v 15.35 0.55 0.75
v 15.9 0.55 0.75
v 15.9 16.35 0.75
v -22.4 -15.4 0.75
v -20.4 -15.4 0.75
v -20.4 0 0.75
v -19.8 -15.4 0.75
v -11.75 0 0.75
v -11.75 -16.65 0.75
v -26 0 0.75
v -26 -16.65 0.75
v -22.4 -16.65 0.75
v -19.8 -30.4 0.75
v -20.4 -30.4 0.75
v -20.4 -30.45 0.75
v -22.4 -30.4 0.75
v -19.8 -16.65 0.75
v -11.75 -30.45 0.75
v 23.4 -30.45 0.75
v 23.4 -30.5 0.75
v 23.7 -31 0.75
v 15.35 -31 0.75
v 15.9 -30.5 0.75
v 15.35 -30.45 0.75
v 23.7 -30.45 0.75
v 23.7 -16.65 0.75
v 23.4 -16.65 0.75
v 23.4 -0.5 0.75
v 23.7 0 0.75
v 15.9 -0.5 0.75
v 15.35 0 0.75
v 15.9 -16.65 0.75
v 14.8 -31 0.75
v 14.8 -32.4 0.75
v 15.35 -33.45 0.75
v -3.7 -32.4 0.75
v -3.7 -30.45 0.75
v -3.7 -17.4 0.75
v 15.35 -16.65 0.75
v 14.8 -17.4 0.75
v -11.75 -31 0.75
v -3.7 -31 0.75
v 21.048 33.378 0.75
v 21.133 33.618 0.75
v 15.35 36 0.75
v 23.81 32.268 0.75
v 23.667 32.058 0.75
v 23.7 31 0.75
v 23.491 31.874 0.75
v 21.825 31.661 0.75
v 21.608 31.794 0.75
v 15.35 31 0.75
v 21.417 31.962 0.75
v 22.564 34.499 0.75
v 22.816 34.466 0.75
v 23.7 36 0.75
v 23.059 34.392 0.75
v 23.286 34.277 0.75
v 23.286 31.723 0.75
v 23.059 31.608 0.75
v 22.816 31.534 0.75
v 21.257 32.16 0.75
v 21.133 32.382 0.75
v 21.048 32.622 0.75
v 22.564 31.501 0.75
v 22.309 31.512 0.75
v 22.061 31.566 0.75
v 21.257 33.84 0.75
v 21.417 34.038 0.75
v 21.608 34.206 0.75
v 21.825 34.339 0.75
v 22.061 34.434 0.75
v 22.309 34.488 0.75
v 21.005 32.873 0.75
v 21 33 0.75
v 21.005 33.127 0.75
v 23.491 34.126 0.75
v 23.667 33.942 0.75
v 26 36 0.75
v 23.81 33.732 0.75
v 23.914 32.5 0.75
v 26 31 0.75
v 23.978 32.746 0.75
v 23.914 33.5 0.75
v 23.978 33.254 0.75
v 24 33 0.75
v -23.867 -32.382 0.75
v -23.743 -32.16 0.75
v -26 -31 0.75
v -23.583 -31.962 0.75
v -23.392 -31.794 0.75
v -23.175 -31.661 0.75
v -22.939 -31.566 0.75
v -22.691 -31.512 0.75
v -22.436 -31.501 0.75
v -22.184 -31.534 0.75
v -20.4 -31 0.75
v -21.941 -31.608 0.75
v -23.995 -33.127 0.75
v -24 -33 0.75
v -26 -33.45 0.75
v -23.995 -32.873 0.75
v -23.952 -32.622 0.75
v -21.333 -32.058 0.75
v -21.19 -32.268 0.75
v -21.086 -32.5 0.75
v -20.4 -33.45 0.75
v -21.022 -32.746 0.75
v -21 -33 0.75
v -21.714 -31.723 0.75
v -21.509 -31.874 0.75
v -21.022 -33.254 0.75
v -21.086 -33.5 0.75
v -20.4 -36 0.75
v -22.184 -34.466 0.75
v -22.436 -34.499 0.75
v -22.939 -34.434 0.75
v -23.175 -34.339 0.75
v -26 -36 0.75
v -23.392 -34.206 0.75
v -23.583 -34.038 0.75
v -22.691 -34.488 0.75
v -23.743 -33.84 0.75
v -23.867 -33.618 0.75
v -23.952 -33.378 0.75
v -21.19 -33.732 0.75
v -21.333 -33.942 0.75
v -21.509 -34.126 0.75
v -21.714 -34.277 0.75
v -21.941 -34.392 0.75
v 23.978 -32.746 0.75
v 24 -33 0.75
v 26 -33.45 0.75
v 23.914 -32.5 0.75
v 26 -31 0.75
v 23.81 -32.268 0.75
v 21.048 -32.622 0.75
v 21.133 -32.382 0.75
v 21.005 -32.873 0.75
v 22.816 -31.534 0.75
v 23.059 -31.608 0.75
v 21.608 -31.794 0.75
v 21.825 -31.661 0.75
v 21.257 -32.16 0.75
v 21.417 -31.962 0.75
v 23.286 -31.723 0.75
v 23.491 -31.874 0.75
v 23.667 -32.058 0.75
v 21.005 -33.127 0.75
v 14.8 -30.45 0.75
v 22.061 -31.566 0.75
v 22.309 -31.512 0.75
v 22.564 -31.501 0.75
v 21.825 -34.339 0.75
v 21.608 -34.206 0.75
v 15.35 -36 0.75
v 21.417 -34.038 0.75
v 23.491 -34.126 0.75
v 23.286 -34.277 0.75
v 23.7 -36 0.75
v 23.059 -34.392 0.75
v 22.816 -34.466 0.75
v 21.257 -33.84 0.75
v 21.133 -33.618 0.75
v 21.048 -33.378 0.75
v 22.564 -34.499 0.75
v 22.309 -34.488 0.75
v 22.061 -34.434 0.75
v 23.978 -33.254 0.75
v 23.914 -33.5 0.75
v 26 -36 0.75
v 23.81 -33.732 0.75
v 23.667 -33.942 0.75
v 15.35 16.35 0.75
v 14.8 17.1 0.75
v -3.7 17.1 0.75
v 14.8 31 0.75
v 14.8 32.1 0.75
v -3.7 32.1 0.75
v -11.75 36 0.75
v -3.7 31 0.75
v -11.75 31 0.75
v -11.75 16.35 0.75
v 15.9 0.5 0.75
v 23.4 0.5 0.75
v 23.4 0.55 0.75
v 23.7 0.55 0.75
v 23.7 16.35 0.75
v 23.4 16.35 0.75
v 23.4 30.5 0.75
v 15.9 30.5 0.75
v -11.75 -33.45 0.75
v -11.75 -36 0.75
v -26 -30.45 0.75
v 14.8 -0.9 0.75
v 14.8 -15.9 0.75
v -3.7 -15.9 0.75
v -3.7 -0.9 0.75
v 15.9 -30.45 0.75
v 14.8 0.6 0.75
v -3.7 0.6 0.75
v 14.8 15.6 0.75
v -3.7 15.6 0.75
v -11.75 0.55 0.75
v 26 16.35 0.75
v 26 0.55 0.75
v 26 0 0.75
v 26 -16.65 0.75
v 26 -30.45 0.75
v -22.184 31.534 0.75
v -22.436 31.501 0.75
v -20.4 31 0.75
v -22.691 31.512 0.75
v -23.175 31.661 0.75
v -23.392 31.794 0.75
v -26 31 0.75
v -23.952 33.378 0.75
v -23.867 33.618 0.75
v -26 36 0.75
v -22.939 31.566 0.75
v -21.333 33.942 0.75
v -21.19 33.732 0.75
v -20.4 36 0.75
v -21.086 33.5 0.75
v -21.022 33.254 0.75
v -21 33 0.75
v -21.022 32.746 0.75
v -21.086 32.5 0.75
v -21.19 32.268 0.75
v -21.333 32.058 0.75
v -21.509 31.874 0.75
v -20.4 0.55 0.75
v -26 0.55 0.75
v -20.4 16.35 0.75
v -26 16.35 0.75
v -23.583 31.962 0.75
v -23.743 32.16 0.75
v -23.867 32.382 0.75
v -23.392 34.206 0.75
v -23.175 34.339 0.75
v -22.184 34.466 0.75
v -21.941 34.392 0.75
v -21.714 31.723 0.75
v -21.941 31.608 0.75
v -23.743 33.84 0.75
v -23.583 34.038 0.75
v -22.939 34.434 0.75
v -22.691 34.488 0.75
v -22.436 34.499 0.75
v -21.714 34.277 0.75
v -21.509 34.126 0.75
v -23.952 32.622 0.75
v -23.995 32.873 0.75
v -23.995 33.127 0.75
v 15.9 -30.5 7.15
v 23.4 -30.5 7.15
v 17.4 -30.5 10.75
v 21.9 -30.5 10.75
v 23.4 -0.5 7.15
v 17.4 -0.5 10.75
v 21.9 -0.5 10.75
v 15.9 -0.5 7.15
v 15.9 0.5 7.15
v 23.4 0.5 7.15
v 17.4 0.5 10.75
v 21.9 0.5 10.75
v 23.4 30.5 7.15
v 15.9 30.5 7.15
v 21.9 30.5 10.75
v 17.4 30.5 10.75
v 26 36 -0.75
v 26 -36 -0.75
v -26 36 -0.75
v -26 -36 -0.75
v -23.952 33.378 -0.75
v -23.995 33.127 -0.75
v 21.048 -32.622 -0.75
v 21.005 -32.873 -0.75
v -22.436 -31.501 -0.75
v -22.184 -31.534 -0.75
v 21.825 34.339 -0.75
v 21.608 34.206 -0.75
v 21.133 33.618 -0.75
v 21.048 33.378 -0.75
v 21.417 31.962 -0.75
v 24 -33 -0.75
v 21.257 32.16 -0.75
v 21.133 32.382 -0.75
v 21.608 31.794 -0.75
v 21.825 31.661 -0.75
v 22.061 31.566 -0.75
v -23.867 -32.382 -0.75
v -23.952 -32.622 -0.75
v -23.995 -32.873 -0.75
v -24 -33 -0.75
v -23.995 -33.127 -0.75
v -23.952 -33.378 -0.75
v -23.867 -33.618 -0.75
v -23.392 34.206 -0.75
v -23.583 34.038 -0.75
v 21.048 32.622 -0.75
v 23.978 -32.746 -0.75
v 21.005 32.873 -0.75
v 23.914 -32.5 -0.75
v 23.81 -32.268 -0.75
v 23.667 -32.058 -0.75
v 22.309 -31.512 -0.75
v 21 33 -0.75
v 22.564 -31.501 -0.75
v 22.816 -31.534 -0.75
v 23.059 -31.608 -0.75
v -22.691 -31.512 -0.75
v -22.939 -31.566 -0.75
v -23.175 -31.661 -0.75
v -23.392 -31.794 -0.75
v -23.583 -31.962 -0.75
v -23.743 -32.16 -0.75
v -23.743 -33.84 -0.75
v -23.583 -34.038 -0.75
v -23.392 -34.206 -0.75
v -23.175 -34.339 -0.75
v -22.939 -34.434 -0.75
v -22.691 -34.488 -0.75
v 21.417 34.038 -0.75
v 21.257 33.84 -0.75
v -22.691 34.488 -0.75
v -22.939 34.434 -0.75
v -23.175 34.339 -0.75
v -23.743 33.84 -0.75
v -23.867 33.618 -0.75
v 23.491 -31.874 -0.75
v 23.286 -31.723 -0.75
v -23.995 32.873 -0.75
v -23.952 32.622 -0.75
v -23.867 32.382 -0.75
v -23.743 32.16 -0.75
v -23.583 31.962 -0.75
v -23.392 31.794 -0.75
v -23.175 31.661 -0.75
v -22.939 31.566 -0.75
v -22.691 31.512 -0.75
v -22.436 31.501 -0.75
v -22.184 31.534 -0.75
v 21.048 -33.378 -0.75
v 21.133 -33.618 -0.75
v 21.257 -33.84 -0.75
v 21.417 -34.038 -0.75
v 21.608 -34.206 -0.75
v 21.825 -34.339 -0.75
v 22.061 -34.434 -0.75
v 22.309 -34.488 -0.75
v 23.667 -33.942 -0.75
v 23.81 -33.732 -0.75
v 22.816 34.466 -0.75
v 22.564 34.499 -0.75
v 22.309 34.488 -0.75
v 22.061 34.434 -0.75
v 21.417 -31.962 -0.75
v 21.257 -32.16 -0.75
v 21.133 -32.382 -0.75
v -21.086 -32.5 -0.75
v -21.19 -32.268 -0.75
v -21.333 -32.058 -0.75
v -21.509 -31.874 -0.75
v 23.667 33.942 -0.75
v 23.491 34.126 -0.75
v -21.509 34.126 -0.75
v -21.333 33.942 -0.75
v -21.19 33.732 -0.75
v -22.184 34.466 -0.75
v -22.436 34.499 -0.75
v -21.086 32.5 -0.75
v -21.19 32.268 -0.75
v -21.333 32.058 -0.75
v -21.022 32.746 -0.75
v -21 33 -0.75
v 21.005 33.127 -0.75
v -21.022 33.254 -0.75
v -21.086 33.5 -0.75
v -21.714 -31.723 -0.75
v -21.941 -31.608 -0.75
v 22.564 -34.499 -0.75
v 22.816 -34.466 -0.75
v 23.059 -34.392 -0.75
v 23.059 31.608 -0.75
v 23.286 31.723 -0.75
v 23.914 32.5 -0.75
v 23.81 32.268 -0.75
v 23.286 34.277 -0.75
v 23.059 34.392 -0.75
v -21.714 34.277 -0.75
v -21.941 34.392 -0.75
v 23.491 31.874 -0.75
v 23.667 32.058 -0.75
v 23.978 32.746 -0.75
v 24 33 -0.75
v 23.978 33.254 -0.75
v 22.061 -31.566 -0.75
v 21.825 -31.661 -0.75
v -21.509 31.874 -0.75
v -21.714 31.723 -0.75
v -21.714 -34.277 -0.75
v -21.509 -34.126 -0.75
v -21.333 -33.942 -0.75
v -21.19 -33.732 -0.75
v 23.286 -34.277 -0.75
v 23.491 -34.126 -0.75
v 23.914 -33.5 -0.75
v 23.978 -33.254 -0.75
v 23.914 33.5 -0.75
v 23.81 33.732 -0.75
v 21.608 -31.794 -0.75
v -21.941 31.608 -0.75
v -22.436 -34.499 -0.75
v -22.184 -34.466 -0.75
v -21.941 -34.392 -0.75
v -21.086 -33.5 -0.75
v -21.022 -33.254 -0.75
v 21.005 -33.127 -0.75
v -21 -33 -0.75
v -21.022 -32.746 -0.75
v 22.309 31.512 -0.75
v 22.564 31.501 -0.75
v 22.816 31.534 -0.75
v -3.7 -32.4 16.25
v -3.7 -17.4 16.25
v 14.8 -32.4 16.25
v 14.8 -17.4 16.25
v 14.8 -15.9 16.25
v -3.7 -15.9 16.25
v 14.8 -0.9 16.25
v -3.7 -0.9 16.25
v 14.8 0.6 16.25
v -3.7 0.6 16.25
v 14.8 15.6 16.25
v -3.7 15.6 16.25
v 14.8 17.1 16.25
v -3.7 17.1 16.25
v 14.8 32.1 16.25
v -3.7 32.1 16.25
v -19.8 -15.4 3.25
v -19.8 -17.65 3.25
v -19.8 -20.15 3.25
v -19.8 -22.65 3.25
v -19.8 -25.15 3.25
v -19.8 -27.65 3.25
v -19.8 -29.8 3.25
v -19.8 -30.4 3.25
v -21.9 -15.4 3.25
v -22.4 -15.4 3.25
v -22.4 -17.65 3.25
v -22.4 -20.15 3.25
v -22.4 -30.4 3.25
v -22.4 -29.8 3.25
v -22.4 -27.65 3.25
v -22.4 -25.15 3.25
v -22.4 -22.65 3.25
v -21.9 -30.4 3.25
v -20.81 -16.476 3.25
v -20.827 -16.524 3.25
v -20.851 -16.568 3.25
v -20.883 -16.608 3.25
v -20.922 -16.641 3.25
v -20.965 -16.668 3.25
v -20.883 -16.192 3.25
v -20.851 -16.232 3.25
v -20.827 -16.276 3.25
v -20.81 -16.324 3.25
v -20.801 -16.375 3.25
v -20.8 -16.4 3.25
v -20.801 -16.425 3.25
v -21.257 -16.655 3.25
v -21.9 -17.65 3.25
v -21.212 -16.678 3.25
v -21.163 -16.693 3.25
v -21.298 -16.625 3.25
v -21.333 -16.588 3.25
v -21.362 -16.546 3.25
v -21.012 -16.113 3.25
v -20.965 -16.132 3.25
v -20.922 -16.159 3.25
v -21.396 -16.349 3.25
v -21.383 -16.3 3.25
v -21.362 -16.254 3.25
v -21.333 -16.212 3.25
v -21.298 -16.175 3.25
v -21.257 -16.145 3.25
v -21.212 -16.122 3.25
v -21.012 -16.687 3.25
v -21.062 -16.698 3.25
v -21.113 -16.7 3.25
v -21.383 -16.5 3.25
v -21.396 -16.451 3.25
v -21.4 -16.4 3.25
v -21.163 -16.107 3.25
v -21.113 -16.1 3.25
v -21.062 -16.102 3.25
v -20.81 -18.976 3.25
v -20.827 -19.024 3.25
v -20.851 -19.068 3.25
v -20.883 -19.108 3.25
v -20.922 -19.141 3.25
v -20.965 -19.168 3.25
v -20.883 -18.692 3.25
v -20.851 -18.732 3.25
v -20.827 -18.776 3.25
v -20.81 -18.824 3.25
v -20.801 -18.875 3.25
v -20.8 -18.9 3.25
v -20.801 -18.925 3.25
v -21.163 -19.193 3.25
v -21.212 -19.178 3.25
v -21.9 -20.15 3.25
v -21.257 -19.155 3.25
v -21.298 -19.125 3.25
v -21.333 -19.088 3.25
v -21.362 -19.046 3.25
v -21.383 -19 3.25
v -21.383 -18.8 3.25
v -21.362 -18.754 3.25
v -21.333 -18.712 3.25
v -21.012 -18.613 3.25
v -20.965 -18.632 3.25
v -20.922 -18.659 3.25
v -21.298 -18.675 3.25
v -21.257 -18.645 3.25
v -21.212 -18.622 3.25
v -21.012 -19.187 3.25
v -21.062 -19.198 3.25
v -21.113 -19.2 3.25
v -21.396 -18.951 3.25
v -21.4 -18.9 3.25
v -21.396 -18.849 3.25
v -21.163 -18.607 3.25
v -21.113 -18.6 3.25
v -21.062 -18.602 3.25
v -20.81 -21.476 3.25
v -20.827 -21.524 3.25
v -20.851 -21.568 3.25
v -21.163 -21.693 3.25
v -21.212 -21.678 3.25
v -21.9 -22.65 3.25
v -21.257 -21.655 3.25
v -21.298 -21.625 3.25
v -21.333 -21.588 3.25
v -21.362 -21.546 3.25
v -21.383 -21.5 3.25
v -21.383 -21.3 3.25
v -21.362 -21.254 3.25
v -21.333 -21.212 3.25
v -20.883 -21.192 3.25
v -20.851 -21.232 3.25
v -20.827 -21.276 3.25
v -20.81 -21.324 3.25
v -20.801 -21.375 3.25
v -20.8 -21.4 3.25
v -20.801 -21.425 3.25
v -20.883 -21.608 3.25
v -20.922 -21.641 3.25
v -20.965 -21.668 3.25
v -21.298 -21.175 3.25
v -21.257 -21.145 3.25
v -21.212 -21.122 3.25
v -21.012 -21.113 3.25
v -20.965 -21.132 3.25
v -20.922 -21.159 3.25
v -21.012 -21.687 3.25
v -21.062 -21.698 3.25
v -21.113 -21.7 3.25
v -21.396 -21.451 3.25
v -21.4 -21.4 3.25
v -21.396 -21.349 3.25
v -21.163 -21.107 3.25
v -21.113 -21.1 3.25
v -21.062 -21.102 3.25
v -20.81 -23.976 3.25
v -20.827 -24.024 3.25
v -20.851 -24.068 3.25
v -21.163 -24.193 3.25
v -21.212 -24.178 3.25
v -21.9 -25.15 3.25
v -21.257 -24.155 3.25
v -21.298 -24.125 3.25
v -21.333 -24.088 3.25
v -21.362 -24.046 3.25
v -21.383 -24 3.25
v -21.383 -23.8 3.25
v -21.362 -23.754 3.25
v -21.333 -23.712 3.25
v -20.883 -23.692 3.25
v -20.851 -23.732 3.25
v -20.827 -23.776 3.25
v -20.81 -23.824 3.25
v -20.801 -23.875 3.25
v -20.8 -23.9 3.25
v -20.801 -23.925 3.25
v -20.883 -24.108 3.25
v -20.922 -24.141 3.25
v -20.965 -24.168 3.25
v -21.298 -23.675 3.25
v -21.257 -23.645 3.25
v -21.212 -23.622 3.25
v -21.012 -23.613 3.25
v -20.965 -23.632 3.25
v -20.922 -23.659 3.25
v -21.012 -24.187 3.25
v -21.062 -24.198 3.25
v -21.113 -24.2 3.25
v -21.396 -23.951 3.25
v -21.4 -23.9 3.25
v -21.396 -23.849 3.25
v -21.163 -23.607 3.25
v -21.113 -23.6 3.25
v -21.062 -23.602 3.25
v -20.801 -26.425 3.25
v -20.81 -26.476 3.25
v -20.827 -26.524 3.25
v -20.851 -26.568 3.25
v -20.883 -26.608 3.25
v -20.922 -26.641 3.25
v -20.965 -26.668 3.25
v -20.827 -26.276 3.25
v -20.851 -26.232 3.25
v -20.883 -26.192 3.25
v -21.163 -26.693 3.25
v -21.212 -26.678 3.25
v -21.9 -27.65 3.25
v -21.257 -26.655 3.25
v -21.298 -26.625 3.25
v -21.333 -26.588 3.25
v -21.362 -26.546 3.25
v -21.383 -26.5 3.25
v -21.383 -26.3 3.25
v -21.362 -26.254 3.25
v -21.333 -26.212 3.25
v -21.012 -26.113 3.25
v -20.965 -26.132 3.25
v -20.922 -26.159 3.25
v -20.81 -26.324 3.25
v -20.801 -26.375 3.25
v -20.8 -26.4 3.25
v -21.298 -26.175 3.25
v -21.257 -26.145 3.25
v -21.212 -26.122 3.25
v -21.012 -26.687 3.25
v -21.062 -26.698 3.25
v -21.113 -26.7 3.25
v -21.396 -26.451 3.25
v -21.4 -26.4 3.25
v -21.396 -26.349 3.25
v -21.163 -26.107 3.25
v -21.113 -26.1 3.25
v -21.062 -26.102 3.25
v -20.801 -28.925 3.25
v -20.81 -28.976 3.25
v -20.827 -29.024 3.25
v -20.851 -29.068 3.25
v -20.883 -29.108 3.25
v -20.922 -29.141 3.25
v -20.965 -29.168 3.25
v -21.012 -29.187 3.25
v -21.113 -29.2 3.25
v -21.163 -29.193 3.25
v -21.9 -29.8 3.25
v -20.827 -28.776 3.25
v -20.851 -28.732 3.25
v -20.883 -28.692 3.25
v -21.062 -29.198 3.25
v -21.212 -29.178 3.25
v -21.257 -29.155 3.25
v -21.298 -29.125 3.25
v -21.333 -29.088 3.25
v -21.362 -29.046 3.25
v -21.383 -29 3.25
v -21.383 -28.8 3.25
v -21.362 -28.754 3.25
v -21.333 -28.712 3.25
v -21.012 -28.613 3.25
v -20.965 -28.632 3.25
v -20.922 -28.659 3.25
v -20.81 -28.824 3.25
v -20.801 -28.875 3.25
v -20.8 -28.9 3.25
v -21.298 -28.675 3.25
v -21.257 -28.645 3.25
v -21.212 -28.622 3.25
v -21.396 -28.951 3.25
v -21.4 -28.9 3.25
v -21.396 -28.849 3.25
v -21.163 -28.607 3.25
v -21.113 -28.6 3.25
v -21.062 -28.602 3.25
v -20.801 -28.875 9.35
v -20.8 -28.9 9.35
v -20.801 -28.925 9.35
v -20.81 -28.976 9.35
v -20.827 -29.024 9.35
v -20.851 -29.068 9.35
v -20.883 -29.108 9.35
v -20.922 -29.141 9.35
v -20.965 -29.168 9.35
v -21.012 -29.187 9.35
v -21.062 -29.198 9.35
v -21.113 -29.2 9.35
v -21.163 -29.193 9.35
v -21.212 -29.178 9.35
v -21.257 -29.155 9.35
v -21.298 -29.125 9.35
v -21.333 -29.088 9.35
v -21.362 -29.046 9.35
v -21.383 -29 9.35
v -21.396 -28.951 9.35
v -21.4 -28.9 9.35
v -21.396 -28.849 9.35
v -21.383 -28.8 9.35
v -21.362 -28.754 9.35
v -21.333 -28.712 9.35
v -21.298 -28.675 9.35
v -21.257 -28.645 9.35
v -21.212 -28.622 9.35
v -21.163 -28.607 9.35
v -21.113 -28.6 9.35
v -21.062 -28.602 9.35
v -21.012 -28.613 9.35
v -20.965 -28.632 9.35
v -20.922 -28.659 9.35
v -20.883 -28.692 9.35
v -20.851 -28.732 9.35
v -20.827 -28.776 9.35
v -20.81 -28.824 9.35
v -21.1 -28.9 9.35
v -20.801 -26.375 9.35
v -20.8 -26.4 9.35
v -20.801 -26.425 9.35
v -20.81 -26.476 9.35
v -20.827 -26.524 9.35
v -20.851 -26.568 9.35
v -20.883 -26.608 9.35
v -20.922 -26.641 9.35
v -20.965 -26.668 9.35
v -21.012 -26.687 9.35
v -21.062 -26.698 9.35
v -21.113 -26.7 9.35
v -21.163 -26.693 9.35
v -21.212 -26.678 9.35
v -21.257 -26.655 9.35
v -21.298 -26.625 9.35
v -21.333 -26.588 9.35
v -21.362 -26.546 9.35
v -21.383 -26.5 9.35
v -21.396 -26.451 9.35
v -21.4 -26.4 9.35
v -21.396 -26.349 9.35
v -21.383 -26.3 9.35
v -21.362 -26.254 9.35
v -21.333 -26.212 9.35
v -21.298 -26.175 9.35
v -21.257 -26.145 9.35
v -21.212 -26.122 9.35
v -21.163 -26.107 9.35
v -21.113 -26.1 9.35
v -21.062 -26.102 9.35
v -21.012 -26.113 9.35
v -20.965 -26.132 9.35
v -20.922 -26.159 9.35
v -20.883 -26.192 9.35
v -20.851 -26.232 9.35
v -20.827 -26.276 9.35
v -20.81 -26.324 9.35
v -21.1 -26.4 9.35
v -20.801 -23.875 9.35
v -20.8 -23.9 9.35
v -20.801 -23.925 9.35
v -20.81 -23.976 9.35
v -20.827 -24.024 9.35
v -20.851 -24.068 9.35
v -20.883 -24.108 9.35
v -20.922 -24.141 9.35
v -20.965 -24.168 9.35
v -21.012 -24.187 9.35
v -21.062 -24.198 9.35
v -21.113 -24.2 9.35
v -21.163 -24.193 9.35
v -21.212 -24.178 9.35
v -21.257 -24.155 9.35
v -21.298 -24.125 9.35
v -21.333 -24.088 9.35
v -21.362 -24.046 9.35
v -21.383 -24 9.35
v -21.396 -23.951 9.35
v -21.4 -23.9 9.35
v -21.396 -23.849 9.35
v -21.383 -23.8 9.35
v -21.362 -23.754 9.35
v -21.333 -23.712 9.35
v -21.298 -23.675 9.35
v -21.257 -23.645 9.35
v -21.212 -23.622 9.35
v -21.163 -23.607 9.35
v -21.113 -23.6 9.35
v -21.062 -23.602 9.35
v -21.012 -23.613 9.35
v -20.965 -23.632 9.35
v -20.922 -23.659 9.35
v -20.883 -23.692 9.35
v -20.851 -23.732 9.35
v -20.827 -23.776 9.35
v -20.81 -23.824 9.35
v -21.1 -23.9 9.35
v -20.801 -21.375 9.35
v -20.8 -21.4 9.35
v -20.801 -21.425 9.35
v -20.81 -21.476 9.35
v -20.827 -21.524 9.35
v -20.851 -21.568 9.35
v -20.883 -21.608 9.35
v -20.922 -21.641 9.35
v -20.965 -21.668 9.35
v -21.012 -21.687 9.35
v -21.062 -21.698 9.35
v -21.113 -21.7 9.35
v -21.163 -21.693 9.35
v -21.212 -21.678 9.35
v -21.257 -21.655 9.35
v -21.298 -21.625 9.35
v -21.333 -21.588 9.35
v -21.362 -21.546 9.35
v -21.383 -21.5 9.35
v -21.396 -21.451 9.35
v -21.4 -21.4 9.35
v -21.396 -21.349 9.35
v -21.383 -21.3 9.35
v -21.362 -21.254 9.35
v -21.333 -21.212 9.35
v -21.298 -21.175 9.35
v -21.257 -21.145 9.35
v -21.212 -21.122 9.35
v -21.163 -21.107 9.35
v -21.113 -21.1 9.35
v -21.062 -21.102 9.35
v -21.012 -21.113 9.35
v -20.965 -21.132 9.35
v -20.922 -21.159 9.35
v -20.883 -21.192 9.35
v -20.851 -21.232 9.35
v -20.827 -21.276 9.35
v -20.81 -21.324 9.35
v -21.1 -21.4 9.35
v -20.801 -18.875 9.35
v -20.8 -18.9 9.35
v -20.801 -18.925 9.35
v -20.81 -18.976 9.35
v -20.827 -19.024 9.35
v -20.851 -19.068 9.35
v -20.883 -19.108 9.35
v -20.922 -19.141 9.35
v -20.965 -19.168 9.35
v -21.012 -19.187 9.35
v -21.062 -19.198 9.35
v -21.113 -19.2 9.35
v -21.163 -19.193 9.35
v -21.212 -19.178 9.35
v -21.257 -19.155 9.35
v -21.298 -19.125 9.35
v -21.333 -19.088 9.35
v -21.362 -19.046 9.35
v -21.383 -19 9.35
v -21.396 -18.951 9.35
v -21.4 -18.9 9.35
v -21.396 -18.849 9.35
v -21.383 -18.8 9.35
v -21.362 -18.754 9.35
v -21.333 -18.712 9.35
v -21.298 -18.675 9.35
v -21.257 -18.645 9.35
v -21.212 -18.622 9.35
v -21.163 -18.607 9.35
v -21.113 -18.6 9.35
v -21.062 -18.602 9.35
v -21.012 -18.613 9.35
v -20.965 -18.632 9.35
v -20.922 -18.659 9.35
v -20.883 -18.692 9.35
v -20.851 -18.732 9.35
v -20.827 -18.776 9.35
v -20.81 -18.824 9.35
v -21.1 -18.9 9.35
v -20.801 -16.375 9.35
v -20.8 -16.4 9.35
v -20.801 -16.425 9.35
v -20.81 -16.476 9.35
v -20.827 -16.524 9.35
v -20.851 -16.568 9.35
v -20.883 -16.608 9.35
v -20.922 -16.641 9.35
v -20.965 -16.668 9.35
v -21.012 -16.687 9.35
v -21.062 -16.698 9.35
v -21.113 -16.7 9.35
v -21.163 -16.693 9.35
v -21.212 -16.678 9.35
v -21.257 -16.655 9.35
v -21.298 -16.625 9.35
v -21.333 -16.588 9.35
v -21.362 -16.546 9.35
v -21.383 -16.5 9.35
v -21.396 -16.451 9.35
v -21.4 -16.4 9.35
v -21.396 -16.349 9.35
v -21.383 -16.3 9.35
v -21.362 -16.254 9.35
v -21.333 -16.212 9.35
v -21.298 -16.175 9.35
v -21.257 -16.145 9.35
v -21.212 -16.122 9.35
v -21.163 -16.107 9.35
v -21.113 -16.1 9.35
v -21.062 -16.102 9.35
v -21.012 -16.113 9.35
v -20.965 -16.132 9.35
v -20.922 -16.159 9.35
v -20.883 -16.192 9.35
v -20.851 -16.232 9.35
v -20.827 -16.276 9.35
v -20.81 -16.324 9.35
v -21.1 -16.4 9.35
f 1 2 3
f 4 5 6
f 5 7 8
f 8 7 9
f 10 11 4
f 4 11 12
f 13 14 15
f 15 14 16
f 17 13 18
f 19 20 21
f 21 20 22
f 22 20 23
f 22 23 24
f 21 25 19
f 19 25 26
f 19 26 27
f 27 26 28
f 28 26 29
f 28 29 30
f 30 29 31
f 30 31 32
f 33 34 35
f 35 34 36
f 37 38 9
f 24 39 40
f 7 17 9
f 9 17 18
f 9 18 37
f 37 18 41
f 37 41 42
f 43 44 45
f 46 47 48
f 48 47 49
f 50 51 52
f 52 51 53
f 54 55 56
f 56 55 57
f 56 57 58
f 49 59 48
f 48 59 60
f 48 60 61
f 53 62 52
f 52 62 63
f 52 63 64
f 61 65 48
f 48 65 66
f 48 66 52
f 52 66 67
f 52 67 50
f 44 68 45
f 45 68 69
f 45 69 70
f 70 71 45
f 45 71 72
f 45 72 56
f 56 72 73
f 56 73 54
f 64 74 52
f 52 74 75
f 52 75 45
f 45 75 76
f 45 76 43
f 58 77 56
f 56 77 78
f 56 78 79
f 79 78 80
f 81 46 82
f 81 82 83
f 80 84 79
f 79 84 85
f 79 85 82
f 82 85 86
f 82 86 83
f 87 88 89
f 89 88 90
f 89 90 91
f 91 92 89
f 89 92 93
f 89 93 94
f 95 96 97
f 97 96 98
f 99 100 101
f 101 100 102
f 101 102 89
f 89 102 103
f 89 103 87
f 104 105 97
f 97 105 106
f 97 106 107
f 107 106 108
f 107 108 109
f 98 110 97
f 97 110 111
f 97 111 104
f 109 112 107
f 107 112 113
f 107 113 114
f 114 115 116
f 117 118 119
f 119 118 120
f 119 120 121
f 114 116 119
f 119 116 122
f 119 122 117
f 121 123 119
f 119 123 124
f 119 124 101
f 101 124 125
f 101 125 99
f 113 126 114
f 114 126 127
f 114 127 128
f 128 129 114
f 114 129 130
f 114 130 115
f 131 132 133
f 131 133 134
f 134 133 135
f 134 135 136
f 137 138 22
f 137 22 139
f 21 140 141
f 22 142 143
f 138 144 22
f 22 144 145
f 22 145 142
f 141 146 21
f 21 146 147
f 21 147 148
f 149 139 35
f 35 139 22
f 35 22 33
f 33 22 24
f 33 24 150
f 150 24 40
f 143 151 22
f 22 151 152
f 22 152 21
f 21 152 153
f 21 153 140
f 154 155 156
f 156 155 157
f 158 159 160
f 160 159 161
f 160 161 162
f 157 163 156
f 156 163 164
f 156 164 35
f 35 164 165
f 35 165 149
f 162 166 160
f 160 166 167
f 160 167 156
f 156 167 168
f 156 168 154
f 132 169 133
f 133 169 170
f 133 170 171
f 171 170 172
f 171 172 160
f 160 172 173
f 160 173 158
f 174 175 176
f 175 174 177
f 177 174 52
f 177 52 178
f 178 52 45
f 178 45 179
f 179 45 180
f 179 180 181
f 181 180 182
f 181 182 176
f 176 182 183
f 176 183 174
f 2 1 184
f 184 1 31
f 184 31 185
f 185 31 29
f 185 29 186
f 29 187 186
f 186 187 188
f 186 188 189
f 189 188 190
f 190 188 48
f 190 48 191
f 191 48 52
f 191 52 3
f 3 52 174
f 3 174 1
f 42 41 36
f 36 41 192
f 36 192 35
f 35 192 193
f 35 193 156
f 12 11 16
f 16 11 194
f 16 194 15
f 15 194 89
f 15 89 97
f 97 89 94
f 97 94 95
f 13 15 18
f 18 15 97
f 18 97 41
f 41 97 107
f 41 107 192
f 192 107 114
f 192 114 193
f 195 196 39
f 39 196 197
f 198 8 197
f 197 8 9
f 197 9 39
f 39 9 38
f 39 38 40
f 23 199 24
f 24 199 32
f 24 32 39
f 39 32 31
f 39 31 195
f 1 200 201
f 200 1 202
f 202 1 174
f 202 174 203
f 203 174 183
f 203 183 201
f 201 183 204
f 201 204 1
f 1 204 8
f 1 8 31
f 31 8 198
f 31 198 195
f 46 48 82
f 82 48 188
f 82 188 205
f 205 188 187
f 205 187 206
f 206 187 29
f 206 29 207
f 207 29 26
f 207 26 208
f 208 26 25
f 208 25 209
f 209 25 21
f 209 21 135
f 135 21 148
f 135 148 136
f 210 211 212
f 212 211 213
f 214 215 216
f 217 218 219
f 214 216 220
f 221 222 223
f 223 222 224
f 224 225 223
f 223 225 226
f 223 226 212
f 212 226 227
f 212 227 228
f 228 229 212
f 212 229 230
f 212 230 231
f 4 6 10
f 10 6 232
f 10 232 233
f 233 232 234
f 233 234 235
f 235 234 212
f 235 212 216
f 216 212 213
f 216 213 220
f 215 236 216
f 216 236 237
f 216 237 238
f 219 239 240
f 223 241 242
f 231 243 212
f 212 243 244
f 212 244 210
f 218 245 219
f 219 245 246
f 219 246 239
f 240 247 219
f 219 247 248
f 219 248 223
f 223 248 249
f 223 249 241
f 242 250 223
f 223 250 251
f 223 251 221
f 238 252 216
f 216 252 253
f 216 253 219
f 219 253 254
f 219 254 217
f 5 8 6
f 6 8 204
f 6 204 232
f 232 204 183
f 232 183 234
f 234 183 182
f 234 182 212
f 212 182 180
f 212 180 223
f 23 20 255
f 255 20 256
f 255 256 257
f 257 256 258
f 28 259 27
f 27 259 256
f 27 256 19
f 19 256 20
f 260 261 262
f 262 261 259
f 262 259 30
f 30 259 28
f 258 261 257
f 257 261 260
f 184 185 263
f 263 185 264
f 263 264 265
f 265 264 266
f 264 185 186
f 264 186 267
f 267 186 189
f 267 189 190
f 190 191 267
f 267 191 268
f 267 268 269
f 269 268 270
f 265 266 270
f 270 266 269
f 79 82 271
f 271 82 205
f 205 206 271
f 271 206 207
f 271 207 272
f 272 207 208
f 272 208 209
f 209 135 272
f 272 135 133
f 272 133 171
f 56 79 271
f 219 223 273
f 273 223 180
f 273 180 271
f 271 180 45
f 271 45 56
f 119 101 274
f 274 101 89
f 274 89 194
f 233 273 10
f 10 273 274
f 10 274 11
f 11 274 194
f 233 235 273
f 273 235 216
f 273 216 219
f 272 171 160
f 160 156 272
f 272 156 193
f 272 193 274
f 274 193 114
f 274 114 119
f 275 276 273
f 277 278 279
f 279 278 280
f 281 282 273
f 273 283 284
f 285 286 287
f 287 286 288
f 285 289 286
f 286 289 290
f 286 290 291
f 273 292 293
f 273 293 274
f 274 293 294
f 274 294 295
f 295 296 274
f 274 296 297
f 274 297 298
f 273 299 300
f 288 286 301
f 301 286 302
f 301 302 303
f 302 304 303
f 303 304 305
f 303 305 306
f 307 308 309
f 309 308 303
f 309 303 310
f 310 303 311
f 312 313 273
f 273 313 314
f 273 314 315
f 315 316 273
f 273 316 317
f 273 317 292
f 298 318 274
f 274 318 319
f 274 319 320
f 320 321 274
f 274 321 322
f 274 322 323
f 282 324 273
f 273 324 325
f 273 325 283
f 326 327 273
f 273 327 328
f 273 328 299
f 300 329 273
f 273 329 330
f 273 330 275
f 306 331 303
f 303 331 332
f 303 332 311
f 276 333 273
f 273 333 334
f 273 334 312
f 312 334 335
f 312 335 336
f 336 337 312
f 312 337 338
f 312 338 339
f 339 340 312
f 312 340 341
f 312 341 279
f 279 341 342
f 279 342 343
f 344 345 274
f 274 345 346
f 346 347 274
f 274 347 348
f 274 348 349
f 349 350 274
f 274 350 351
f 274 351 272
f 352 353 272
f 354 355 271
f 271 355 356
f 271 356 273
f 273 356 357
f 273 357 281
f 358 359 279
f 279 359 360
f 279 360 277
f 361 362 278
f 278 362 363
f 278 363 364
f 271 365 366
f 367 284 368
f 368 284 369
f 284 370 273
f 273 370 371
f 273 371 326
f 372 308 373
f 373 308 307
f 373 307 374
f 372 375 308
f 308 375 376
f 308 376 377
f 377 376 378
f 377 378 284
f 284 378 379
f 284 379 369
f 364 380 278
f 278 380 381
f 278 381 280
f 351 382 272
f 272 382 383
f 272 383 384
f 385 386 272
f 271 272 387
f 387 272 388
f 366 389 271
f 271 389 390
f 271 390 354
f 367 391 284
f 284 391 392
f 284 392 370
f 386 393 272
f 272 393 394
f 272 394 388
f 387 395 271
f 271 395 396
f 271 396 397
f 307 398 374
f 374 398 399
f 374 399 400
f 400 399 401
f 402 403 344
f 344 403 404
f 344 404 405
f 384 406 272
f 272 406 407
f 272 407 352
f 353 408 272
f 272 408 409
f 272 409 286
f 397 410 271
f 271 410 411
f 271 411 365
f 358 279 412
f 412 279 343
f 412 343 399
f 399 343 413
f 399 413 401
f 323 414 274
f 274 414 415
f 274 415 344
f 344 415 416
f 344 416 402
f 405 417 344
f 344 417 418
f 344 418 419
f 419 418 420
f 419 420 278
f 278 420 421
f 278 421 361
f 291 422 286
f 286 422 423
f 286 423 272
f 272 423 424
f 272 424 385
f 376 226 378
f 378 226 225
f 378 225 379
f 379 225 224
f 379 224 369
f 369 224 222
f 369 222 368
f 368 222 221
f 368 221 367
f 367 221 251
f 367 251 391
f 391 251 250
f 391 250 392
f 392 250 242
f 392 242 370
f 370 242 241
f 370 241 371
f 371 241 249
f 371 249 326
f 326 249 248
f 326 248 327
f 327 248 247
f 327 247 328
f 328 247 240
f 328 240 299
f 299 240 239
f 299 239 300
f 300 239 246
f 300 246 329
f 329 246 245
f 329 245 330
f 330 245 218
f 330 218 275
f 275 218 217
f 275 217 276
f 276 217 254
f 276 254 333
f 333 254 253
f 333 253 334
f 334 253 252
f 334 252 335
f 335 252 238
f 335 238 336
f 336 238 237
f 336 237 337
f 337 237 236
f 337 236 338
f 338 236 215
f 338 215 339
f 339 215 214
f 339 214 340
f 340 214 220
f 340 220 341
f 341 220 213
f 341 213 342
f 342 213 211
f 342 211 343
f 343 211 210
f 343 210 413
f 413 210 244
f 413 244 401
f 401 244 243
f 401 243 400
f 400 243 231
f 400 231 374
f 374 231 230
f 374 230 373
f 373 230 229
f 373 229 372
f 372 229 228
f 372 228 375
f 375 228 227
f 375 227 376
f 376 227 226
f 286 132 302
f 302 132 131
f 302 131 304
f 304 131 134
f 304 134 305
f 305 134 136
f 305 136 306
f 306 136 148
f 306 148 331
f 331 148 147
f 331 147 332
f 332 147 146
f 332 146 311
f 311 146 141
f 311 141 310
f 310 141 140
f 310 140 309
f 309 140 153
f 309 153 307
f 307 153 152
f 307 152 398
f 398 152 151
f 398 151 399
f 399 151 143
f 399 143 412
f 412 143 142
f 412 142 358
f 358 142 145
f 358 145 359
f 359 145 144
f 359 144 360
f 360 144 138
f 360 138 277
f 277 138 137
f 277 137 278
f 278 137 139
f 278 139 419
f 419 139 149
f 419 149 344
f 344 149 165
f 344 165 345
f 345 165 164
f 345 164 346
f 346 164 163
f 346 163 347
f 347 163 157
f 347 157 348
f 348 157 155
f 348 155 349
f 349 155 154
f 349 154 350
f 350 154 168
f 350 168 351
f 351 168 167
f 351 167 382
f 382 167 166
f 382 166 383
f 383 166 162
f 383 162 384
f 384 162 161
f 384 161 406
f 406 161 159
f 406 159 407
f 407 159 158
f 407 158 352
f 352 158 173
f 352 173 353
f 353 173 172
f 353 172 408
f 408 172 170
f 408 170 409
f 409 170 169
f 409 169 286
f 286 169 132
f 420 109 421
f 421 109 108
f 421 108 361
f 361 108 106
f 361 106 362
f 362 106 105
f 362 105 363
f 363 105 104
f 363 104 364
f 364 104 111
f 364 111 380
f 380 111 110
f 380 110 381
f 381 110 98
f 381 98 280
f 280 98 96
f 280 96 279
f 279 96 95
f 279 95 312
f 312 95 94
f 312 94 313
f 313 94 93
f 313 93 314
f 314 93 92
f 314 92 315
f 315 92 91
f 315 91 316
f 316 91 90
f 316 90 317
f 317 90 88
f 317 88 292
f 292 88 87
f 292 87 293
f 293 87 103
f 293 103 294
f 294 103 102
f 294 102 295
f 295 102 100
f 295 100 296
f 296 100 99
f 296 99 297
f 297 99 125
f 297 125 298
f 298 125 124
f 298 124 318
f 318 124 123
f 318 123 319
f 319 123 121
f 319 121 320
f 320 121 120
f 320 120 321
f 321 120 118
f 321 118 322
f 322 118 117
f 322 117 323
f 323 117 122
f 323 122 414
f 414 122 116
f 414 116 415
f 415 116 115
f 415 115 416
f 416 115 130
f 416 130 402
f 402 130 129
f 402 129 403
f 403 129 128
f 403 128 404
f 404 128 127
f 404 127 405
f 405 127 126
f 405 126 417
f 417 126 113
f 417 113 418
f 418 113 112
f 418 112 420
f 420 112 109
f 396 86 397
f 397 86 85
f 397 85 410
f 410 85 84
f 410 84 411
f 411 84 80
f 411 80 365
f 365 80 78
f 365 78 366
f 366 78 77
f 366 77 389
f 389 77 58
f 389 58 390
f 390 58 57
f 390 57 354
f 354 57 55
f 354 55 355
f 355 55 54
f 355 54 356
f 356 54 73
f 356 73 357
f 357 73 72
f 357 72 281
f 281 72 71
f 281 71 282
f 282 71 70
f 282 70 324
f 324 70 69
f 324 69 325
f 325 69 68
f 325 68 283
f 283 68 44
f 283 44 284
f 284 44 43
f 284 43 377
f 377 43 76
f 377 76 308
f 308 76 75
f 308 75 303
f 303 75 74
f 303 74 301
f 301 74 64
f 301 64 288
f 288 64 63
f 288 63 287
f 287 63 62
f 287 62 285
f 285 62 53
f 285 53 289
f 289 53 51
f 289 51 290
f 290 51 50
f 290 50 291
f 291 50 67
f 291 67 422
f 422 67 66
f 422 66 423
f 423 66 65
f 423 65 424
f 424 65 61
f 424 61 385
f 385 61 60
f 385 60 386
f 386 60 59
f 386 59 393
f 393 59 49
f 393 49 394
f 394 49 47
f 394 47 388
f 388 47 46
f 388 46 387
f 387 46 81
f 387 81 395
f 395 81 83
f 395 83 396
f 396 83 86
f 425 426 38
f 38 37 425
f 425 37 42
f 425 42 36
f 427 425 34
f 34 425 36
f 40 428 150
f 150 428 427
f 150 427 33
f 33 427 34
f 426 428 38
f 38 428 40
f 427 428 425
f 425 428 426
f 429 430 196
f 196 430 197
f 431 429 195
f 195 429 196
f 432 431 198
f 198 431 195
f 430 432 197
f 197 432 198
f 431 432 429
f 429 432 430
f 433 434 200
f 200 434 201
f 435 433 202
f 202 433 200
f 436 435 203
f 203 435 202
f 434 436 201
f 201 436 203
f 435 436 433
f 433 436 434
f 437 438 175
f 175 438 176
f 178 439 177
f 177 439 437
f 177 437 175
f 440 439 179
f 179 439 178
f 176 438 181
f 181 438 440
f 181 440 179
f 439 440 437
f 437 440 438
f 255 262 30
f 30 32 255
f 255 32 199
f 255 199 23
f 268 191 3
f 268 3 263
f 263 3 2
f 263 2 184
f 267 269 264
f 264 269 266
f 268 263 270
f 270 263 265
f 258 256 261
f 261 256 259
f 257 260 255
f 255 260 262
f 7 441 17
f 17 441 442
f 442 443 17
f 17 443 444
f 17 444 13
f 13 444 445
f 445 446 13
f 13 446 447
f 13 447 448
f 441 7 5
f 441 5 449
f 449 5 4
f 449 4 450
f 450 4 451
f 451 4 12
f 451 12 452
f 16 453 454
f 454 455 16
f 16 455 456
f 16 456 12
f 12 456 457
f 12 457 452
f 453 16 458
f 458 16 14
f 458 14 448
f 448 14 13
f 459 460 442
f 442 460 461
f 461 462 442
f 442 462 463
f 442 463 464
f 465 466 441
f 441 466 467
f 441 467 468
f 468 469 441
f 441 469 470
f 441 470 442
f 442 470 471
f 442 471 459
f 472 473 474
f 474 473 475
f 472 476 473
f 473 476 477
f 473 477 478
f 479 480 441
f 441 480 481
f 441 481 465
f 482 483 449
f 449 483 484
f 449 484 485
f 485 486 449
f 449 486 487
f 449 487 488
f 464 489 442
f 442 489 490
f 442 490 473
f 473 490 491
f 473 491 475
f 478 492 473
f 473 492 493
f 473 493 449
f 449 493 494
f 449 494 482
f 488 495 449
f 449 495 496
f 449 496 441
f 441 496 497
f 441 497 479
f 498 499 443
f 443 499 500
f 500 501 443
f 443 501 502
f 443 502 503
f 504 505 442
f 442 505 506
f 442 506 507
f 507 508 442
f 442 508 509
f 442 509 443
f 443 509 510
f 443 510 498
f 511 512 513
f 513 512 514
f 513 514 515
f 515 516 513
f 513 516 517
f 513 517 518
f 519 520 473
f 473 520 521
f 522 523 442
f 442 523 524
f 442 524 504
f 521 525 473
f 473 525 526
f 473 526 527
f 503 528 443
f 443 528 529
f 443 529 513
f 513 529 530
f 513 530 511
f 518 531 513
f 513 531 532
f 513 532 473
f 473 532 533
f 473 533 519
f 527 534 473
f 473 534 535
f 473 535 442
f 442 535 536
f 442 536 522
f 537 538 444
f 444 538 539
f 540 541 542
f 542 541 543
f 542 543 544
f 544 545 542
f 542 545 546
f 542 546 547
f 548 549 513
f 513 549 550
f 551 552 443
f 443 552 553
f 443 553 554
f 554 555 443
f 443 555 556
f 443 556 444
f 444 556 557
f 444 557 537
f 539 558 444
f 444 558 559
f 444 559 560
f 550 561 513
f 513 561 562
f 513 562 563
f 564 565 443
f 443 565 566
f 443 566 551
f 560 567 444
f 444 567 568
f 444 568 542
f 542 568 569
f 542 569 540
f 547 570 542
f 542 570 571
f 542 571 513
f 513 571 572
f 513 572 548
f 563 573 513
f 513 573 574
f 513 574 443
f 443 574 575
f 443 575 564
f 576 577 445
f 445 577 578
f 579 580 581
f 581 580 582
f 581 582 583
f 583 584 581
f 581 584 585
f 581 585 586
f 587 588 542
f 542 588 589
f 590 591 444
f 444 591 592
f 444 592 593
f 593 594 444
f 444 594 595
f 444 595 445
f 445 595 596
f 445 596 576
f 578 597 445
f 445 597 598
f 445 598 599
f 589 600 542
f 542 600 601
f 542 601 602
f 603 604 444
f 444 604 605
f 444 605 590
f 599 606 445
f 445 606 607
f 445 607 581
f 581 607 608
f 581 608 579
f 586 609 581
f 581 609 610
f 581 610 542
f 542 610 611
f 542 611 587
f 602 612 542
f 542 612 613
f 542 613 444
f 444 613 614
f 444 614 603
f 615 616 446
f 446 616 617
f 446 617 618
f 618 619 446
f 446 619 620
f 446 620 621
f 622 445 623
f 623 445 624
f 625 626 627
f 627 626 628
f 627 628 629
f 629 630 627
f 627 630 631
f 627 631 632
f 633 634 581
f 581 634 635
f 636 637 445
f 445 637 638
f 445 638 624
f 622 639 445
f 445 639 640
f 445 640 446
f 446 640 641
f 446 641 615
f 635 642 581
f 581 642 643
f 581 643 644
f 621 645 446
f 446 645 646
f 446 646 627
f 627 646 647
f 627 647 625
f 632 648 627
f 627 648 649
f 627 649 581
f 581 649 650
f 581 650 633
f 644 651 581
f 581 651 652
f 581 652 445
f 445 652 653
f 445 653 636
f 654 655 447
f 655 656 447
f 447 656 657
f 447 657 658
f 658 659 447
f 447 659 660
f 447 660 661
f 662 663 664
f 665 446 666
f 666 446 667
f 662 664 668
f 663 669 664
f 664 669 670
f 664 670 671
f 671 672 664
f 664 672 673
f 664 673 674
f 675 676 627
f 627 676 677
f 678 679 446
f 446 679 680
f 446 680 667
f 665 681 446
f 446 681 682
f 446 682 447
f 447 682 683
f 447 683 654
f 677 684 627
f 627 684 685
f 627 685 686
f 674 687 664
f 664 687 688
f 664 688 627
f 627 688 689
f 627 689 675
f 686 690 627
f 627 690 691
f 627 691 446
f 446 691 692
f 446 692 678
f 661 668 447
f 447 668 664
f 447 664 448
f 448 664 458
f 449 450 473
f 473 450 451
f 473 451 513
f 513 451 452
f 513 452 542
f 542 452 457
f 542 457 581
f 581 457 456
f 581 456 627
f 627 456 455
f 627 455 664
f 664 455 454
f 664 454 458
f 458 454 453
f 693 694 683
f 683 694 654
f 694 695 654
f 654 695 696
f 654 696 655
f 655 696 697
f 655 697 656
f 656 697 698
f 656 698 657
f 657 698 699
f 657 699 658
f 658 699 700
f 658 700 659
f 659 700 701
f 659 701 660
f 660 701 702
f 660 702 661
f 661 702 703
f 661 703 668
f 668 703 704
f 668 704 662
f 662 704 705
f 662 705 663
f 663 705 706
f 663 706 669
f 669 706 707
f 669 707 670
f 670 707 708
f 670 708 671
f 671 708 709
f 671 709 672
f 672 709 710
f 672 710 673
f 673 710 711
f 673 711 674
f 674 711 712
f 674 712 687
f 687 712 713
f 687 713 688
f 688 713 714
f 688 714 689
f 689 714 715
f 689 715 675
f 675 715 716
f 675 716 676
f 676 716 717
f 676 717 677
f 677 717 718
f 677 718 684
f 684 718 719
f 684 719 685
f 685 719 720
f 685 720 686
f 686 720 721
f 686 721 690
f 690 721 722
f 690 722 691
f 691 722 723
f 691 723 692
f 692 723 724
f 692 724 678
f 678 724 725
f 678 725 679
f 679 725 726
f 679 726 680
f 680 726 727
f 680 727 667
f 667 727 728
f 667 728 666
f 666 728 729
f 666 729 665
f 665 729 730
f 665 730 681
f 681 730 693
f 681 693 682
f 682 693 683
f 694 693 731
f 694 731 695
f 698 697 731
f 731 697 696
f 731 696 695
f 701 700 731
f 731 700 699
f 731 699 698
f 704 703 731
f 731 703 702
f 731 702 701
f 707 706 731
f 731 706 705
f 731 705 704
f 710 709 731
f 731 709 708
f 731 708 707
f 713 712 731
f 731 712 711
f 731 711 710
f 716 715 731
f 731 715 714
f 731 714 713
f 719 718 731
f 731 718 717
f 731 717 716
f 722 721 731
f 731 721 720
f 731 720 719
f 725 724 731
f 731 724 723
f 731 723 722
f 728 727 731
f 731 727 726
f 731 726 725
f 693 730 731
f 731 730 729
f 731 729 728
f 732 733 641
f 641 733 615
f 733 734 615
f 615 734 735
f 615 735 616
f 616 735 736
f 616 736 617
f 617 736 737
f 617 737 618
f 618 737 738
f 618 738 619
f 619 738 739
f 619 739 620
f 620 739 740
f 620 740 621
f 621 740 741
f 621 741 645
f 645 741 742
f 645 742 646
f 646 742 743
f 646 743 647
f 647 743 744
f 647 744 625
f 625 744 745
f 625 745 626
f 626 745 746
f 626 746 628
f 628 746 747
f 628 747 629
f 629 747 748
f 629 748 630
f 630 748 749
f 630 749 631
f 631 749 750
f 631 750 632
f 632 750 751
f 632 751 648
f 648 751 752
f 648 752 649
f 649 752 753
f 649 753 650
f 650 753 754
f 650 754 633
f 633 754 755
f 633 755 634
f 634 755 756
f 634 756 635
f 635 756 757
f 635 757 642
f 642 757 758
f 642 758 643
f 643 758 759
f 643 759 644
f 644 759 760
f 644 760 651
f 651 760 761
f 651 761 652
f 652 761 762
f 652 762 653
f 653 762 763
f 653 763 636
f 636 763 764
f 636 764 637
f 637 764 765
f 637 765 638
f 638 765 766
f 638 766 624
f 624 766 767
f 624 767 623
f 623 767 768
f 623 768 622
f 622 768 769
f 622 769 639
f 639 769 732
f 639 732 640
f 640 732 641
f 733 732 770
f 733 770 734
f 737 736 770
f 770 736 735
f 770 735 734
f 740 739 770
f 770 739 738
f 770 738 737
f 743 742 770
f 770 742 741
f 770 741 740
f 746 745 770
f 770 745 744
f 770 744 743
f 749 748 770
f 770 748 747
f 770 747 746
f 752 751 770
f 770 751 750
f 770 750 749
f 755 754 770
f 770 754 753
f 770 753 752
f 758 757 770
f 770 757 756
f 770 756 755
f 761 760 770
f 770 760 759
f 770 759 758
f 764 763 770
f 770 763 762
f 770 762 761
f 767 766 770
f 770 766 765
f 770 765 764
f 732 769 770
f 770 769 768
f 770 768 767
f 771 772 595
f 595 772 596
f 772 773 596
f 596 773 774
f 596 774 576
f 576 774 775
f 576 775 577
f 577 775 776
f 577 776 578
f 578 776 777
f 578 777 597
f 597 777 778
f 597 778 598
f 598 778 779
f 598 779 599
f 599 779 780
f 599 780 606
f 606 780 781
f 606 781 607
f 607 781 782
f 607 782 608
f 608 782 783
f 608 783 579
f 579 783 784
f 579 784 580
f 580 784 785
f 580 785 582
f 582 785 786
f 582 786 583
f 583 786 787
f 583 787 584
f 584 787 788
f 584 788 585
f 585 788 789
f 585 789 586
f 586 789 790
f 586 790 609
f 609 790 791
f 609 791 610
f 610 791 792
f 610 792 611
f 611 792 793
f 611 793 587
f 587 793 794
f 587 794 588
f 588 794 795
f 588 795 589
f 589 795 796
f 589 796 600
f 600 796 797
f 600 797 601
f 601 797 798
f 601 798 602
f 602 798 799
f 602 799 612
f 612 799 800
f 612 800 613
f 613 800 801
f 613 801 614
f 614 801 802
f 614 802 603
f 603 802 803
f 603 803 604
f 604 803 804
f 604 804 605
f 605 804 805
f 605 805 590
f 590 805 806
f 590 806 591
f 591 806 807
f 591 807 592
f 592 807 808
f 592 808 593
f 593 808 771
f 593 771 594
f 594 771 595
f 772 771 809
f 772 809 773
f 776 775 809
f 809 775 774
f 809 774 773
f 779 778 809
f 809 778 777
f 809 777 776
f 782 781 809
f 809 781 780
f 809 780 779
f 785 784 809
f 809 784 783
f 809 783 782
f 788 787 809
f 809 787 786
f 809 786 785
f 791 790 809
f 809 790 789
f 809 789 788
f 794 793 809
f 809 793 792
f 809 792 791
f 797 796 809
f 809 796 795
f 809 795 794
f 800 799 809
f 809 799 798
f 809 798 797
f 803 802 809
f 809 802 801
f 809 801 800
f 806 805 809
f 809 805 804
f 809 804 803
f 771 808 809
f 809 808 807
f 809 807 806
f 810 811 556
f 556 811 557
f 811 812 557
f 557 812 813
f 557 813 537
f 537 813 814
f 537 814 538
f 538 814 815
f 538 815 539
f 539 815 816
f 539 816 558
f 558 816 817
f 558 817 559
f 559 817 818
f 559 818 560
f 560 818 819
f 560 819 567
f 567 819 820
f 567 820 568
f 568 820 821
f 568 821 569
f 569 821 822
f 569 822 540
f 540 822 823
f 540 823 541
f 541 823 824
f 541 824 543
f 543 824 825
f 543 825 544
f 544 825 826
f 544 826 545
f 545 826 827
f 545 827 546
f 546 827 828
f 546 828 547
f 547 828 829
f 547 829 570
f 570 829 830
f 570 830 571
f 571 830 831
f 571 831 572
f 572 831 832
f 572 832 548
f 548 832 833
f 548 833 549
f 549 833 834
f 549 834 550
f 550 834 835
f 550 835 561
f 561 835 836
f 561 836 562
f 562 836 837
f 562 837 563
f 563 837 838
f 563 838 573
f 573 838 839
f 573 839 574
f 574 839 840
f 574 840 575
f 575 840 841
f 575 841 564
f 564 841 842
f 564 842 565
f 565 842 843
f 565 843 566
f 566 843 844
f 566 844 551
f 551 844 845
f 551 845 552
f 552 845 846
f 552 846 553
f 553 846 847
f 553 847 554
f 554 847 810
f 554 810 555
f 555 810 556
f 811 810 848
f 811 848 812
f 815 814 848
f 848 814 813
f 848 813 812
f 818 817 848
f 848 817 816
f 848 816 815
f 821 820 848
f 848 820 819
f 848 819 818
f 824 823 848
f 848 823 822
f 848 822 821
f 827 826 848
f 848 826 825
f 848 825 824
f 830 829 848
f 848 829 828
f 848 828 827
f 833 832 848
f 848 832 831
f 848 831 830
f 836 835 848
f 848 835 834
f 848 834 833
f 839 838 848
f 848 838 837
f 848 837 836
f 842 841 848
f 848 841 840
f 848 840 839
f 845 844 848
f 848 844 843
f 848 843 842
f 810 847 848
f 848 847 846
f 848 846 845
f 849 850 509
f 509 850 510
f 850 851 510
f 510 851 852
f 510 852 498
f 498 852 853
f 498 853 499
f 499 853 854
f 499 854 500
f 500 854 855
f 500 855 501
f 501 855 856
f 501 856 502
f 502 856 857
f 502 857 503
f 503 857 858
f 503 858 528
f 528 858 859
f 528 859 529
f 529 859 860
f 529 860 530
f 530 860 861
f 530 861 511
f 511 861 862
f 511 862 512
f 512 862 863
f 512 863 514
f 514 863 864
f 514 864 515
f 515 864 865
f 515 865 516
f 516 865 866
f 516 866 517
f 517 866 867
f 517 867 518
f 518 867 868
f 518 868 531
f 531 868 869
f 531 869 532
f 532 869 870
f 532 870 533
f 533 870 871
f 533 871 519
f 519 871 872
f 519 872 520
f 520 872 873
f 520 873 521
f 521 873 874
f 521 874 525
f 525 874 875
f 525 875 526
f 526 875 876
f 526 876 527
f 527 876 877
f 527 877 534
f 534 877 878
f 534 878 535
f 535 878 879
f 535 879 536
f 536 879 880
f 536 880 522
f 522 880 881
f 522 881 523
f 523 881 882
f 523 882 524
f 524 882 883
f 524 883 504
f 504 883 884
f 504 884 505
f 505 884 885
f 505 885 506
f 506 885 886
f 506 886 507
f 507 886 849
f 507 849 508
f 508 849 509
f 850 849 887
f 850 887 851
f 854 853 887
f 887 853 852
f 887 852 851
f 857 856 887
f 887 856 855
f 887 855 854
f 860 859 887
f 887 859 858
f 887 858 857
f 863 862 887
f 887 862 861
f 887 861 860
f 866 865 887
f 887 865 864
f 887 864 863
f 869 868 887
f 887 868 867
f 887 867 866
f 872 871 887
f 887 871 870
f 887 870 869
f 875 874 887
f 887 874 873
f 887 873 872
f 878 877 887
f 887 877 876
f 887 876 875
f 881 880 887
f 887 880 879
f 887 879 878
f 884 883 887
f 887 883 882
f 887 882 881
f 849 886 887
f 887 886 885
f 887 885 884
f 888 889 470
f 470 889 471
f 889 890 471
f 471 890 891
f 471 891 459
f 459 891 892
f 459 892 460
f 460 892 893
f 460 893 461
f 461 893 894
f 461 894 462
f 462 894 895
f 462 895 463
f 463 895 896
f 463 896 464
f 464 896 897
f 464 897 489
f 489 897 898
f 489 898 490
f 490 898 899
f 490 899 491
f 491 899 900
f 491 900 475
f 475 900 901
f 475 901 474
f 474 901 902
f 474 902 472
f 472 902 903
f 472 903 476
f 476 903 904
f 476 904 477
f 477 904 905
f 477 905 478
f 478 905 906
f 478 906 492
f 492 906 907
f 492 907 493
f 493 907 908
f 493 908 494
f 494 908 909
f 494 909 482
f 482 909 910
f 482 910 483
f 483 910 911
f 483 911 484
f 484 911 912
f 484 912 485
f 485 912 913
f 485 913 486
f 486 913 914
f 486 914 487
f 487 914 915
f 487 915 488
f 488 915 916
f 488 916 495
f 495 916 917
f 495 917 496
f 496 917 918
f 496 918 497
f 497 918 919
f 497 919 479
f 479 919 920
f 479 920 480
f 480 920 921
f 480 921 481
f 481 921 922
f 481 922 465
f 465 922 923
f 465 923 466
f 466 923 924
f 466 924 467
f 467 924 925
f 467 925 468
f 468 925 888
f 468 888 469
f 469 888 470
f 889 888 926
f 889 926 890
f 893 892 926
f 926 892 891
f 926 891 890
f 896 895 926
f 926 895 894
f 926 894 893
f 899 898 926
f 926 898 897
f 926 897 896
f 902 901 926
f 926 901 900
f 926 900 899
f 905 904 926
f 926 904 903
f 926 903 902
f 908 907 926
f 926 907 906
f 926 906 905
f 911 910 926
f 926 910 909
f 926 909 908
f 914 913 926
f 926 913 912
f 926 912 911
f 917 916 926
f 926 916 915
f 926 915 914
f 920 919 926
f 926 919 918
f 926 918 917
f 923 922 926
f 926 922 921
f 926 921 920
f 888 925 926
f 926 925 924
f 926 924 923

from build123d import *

# Parameters (mm, degrees)
CROQUIS1_W              = 52
CROQUIS1_H              = 72
SALIENTE_EXTRUIR1_DEPTH = 0.75
CROQUIS2_R              = 1.5
CORTAR_EXTRUIR1_DEPTH   = 1.5
CROQUIS3_W              = 18.5
CROQUIS3_H              = 15
SALIENTE_EXTRUIR2_DEPTH = 15.5
CROQUIS4_W              = 7.5
CROQUIS4_H              = 30
SALIENTE_EXTRUIR3_DEPTH = 10
CORTAR_EXTRUIR2_DEPTH   = 80
CROQUIS6_W              = 2.6
CROQUIS6_H              = 15
SALIENTE_EXTRUIR4_DEPTH = 2.5
CROQUIS7_R              = 0.3
SALIENTE_EXTRUIR5_DEPTH = 6.1


with BuildPart() as part:
    # Croquis1 → Saliente-Extruir1 (new body, symmetric)
    with BuildSketch(Plane.XY):
        Rectangle(CROQUIS1_W, CROQUIS1_H)
    extrude(amount=SALIENTE_EXTRUIR1_DEPTH, both=True)

    # Croquis2 → Cortar-Extruir1 (cut)
    with BuildSketch(Plane.XY.offset(0.75)):
        with Locations((-22.5, 33)):
            Circle(CROQUIS2_R)
        with Locations((22.5, 33)):
            Circle(CROQUIS2_R)
        with Locations((-22.5, -33)):
            Circle(CROQUIS2_R)
        with Locations((22.5, -33)):
            Circle(CROQUIS2_R)
    extrude(amount=-CORTAR_EXTRUIR1_DEPTH, mode=Mode.SUBTRACT)

    # Croquis3 → Saliente-Extruir2 (add)
    with BuildSketch(Plane.XY.offset(0.75)):
        with Locations((5.55, -24.9)):
            Rectangle(CROQUIS3_W, CROQUIS3_H)
        with Locations((5.55, -8.4)):
            Rectangle(CROQUIS3_W, CROQUIS3_H)
        with Locations((5.55, 8.1)):
            Rectangle(CROQUIS3_W, CROQUIS3_H)
        with Locations((5.55, 24.6)):
            Rectangle(CROQUIS3_W, CROQUIS3_H)
    extrude(amount=SALIENTE_EXTRUIR2_DEPTH)

    # Croquis4 → Saliente-Extruir3 (add)
    with BuildSketch(Plane.XY.offset(0.75)):
        with Locations((19.65, -15.5)):
            Rectangle(CROQUIS4_W, CROQUIS4_H)
        with Locations((19.65, 15.5)):
            Rectangle(CROQUIS4_W, CROQUIS4_H)
    extrude(amount=SALIENTE_EXTRUIR3_DEPTH)

    # Croquis5 → Cortar-Extruir2 (cut)
    with BuildSketch(Plane.XZ.offset(30.5)):
        Polygon((15.9, 10.75), (15.9, 7.15), (17.4, 10.75), align=None)
        Polygon((23.4, 10.75), (21.9, 10.75), (23.4, 7.15), align=None)
    extrude(amount=-CORTAR_EXTRUIR2_DEPTH, mode=Mode.SUBTRACT)

    # Croquis6 → Saliente-Extruir4 (add)
    with BuildSketch(Plane.XY.offset(0.75)):
        with Locations((-21.1, -22.9)):
            Rectangle(CROQUIS6_W, CROQUIS6_H)
    extrude(amount=SALIENTE_EXTRUIR4_DEPTH)

    # Croquis7 → Saliente-Extruir5 (add)
    with BuildSketch(Plane.XY.offset(3.25)):
        with Locations((-21.1, -28.9)):
            Circle(CROQUIS7_R)
        with Locations((-21.1, -26.4)):
            Circle(CROQUIS7_R)
        with Locations((-21.1, -23.9)):
            Circle(CROQUIS7_R)
        with Locations((-21.1, -21.4)):
            Circle(CROQUIS7_R)
        with Locations((-21.1, -18.9)):
            Circle(CROQUIS7_R)
        with Locations((-21.1, -16.4)):
            Circle(CROQUIS7_R)
    extrude(amount=SALIENTE_EXTRUIR5_DEPTH)


solid = part.part
